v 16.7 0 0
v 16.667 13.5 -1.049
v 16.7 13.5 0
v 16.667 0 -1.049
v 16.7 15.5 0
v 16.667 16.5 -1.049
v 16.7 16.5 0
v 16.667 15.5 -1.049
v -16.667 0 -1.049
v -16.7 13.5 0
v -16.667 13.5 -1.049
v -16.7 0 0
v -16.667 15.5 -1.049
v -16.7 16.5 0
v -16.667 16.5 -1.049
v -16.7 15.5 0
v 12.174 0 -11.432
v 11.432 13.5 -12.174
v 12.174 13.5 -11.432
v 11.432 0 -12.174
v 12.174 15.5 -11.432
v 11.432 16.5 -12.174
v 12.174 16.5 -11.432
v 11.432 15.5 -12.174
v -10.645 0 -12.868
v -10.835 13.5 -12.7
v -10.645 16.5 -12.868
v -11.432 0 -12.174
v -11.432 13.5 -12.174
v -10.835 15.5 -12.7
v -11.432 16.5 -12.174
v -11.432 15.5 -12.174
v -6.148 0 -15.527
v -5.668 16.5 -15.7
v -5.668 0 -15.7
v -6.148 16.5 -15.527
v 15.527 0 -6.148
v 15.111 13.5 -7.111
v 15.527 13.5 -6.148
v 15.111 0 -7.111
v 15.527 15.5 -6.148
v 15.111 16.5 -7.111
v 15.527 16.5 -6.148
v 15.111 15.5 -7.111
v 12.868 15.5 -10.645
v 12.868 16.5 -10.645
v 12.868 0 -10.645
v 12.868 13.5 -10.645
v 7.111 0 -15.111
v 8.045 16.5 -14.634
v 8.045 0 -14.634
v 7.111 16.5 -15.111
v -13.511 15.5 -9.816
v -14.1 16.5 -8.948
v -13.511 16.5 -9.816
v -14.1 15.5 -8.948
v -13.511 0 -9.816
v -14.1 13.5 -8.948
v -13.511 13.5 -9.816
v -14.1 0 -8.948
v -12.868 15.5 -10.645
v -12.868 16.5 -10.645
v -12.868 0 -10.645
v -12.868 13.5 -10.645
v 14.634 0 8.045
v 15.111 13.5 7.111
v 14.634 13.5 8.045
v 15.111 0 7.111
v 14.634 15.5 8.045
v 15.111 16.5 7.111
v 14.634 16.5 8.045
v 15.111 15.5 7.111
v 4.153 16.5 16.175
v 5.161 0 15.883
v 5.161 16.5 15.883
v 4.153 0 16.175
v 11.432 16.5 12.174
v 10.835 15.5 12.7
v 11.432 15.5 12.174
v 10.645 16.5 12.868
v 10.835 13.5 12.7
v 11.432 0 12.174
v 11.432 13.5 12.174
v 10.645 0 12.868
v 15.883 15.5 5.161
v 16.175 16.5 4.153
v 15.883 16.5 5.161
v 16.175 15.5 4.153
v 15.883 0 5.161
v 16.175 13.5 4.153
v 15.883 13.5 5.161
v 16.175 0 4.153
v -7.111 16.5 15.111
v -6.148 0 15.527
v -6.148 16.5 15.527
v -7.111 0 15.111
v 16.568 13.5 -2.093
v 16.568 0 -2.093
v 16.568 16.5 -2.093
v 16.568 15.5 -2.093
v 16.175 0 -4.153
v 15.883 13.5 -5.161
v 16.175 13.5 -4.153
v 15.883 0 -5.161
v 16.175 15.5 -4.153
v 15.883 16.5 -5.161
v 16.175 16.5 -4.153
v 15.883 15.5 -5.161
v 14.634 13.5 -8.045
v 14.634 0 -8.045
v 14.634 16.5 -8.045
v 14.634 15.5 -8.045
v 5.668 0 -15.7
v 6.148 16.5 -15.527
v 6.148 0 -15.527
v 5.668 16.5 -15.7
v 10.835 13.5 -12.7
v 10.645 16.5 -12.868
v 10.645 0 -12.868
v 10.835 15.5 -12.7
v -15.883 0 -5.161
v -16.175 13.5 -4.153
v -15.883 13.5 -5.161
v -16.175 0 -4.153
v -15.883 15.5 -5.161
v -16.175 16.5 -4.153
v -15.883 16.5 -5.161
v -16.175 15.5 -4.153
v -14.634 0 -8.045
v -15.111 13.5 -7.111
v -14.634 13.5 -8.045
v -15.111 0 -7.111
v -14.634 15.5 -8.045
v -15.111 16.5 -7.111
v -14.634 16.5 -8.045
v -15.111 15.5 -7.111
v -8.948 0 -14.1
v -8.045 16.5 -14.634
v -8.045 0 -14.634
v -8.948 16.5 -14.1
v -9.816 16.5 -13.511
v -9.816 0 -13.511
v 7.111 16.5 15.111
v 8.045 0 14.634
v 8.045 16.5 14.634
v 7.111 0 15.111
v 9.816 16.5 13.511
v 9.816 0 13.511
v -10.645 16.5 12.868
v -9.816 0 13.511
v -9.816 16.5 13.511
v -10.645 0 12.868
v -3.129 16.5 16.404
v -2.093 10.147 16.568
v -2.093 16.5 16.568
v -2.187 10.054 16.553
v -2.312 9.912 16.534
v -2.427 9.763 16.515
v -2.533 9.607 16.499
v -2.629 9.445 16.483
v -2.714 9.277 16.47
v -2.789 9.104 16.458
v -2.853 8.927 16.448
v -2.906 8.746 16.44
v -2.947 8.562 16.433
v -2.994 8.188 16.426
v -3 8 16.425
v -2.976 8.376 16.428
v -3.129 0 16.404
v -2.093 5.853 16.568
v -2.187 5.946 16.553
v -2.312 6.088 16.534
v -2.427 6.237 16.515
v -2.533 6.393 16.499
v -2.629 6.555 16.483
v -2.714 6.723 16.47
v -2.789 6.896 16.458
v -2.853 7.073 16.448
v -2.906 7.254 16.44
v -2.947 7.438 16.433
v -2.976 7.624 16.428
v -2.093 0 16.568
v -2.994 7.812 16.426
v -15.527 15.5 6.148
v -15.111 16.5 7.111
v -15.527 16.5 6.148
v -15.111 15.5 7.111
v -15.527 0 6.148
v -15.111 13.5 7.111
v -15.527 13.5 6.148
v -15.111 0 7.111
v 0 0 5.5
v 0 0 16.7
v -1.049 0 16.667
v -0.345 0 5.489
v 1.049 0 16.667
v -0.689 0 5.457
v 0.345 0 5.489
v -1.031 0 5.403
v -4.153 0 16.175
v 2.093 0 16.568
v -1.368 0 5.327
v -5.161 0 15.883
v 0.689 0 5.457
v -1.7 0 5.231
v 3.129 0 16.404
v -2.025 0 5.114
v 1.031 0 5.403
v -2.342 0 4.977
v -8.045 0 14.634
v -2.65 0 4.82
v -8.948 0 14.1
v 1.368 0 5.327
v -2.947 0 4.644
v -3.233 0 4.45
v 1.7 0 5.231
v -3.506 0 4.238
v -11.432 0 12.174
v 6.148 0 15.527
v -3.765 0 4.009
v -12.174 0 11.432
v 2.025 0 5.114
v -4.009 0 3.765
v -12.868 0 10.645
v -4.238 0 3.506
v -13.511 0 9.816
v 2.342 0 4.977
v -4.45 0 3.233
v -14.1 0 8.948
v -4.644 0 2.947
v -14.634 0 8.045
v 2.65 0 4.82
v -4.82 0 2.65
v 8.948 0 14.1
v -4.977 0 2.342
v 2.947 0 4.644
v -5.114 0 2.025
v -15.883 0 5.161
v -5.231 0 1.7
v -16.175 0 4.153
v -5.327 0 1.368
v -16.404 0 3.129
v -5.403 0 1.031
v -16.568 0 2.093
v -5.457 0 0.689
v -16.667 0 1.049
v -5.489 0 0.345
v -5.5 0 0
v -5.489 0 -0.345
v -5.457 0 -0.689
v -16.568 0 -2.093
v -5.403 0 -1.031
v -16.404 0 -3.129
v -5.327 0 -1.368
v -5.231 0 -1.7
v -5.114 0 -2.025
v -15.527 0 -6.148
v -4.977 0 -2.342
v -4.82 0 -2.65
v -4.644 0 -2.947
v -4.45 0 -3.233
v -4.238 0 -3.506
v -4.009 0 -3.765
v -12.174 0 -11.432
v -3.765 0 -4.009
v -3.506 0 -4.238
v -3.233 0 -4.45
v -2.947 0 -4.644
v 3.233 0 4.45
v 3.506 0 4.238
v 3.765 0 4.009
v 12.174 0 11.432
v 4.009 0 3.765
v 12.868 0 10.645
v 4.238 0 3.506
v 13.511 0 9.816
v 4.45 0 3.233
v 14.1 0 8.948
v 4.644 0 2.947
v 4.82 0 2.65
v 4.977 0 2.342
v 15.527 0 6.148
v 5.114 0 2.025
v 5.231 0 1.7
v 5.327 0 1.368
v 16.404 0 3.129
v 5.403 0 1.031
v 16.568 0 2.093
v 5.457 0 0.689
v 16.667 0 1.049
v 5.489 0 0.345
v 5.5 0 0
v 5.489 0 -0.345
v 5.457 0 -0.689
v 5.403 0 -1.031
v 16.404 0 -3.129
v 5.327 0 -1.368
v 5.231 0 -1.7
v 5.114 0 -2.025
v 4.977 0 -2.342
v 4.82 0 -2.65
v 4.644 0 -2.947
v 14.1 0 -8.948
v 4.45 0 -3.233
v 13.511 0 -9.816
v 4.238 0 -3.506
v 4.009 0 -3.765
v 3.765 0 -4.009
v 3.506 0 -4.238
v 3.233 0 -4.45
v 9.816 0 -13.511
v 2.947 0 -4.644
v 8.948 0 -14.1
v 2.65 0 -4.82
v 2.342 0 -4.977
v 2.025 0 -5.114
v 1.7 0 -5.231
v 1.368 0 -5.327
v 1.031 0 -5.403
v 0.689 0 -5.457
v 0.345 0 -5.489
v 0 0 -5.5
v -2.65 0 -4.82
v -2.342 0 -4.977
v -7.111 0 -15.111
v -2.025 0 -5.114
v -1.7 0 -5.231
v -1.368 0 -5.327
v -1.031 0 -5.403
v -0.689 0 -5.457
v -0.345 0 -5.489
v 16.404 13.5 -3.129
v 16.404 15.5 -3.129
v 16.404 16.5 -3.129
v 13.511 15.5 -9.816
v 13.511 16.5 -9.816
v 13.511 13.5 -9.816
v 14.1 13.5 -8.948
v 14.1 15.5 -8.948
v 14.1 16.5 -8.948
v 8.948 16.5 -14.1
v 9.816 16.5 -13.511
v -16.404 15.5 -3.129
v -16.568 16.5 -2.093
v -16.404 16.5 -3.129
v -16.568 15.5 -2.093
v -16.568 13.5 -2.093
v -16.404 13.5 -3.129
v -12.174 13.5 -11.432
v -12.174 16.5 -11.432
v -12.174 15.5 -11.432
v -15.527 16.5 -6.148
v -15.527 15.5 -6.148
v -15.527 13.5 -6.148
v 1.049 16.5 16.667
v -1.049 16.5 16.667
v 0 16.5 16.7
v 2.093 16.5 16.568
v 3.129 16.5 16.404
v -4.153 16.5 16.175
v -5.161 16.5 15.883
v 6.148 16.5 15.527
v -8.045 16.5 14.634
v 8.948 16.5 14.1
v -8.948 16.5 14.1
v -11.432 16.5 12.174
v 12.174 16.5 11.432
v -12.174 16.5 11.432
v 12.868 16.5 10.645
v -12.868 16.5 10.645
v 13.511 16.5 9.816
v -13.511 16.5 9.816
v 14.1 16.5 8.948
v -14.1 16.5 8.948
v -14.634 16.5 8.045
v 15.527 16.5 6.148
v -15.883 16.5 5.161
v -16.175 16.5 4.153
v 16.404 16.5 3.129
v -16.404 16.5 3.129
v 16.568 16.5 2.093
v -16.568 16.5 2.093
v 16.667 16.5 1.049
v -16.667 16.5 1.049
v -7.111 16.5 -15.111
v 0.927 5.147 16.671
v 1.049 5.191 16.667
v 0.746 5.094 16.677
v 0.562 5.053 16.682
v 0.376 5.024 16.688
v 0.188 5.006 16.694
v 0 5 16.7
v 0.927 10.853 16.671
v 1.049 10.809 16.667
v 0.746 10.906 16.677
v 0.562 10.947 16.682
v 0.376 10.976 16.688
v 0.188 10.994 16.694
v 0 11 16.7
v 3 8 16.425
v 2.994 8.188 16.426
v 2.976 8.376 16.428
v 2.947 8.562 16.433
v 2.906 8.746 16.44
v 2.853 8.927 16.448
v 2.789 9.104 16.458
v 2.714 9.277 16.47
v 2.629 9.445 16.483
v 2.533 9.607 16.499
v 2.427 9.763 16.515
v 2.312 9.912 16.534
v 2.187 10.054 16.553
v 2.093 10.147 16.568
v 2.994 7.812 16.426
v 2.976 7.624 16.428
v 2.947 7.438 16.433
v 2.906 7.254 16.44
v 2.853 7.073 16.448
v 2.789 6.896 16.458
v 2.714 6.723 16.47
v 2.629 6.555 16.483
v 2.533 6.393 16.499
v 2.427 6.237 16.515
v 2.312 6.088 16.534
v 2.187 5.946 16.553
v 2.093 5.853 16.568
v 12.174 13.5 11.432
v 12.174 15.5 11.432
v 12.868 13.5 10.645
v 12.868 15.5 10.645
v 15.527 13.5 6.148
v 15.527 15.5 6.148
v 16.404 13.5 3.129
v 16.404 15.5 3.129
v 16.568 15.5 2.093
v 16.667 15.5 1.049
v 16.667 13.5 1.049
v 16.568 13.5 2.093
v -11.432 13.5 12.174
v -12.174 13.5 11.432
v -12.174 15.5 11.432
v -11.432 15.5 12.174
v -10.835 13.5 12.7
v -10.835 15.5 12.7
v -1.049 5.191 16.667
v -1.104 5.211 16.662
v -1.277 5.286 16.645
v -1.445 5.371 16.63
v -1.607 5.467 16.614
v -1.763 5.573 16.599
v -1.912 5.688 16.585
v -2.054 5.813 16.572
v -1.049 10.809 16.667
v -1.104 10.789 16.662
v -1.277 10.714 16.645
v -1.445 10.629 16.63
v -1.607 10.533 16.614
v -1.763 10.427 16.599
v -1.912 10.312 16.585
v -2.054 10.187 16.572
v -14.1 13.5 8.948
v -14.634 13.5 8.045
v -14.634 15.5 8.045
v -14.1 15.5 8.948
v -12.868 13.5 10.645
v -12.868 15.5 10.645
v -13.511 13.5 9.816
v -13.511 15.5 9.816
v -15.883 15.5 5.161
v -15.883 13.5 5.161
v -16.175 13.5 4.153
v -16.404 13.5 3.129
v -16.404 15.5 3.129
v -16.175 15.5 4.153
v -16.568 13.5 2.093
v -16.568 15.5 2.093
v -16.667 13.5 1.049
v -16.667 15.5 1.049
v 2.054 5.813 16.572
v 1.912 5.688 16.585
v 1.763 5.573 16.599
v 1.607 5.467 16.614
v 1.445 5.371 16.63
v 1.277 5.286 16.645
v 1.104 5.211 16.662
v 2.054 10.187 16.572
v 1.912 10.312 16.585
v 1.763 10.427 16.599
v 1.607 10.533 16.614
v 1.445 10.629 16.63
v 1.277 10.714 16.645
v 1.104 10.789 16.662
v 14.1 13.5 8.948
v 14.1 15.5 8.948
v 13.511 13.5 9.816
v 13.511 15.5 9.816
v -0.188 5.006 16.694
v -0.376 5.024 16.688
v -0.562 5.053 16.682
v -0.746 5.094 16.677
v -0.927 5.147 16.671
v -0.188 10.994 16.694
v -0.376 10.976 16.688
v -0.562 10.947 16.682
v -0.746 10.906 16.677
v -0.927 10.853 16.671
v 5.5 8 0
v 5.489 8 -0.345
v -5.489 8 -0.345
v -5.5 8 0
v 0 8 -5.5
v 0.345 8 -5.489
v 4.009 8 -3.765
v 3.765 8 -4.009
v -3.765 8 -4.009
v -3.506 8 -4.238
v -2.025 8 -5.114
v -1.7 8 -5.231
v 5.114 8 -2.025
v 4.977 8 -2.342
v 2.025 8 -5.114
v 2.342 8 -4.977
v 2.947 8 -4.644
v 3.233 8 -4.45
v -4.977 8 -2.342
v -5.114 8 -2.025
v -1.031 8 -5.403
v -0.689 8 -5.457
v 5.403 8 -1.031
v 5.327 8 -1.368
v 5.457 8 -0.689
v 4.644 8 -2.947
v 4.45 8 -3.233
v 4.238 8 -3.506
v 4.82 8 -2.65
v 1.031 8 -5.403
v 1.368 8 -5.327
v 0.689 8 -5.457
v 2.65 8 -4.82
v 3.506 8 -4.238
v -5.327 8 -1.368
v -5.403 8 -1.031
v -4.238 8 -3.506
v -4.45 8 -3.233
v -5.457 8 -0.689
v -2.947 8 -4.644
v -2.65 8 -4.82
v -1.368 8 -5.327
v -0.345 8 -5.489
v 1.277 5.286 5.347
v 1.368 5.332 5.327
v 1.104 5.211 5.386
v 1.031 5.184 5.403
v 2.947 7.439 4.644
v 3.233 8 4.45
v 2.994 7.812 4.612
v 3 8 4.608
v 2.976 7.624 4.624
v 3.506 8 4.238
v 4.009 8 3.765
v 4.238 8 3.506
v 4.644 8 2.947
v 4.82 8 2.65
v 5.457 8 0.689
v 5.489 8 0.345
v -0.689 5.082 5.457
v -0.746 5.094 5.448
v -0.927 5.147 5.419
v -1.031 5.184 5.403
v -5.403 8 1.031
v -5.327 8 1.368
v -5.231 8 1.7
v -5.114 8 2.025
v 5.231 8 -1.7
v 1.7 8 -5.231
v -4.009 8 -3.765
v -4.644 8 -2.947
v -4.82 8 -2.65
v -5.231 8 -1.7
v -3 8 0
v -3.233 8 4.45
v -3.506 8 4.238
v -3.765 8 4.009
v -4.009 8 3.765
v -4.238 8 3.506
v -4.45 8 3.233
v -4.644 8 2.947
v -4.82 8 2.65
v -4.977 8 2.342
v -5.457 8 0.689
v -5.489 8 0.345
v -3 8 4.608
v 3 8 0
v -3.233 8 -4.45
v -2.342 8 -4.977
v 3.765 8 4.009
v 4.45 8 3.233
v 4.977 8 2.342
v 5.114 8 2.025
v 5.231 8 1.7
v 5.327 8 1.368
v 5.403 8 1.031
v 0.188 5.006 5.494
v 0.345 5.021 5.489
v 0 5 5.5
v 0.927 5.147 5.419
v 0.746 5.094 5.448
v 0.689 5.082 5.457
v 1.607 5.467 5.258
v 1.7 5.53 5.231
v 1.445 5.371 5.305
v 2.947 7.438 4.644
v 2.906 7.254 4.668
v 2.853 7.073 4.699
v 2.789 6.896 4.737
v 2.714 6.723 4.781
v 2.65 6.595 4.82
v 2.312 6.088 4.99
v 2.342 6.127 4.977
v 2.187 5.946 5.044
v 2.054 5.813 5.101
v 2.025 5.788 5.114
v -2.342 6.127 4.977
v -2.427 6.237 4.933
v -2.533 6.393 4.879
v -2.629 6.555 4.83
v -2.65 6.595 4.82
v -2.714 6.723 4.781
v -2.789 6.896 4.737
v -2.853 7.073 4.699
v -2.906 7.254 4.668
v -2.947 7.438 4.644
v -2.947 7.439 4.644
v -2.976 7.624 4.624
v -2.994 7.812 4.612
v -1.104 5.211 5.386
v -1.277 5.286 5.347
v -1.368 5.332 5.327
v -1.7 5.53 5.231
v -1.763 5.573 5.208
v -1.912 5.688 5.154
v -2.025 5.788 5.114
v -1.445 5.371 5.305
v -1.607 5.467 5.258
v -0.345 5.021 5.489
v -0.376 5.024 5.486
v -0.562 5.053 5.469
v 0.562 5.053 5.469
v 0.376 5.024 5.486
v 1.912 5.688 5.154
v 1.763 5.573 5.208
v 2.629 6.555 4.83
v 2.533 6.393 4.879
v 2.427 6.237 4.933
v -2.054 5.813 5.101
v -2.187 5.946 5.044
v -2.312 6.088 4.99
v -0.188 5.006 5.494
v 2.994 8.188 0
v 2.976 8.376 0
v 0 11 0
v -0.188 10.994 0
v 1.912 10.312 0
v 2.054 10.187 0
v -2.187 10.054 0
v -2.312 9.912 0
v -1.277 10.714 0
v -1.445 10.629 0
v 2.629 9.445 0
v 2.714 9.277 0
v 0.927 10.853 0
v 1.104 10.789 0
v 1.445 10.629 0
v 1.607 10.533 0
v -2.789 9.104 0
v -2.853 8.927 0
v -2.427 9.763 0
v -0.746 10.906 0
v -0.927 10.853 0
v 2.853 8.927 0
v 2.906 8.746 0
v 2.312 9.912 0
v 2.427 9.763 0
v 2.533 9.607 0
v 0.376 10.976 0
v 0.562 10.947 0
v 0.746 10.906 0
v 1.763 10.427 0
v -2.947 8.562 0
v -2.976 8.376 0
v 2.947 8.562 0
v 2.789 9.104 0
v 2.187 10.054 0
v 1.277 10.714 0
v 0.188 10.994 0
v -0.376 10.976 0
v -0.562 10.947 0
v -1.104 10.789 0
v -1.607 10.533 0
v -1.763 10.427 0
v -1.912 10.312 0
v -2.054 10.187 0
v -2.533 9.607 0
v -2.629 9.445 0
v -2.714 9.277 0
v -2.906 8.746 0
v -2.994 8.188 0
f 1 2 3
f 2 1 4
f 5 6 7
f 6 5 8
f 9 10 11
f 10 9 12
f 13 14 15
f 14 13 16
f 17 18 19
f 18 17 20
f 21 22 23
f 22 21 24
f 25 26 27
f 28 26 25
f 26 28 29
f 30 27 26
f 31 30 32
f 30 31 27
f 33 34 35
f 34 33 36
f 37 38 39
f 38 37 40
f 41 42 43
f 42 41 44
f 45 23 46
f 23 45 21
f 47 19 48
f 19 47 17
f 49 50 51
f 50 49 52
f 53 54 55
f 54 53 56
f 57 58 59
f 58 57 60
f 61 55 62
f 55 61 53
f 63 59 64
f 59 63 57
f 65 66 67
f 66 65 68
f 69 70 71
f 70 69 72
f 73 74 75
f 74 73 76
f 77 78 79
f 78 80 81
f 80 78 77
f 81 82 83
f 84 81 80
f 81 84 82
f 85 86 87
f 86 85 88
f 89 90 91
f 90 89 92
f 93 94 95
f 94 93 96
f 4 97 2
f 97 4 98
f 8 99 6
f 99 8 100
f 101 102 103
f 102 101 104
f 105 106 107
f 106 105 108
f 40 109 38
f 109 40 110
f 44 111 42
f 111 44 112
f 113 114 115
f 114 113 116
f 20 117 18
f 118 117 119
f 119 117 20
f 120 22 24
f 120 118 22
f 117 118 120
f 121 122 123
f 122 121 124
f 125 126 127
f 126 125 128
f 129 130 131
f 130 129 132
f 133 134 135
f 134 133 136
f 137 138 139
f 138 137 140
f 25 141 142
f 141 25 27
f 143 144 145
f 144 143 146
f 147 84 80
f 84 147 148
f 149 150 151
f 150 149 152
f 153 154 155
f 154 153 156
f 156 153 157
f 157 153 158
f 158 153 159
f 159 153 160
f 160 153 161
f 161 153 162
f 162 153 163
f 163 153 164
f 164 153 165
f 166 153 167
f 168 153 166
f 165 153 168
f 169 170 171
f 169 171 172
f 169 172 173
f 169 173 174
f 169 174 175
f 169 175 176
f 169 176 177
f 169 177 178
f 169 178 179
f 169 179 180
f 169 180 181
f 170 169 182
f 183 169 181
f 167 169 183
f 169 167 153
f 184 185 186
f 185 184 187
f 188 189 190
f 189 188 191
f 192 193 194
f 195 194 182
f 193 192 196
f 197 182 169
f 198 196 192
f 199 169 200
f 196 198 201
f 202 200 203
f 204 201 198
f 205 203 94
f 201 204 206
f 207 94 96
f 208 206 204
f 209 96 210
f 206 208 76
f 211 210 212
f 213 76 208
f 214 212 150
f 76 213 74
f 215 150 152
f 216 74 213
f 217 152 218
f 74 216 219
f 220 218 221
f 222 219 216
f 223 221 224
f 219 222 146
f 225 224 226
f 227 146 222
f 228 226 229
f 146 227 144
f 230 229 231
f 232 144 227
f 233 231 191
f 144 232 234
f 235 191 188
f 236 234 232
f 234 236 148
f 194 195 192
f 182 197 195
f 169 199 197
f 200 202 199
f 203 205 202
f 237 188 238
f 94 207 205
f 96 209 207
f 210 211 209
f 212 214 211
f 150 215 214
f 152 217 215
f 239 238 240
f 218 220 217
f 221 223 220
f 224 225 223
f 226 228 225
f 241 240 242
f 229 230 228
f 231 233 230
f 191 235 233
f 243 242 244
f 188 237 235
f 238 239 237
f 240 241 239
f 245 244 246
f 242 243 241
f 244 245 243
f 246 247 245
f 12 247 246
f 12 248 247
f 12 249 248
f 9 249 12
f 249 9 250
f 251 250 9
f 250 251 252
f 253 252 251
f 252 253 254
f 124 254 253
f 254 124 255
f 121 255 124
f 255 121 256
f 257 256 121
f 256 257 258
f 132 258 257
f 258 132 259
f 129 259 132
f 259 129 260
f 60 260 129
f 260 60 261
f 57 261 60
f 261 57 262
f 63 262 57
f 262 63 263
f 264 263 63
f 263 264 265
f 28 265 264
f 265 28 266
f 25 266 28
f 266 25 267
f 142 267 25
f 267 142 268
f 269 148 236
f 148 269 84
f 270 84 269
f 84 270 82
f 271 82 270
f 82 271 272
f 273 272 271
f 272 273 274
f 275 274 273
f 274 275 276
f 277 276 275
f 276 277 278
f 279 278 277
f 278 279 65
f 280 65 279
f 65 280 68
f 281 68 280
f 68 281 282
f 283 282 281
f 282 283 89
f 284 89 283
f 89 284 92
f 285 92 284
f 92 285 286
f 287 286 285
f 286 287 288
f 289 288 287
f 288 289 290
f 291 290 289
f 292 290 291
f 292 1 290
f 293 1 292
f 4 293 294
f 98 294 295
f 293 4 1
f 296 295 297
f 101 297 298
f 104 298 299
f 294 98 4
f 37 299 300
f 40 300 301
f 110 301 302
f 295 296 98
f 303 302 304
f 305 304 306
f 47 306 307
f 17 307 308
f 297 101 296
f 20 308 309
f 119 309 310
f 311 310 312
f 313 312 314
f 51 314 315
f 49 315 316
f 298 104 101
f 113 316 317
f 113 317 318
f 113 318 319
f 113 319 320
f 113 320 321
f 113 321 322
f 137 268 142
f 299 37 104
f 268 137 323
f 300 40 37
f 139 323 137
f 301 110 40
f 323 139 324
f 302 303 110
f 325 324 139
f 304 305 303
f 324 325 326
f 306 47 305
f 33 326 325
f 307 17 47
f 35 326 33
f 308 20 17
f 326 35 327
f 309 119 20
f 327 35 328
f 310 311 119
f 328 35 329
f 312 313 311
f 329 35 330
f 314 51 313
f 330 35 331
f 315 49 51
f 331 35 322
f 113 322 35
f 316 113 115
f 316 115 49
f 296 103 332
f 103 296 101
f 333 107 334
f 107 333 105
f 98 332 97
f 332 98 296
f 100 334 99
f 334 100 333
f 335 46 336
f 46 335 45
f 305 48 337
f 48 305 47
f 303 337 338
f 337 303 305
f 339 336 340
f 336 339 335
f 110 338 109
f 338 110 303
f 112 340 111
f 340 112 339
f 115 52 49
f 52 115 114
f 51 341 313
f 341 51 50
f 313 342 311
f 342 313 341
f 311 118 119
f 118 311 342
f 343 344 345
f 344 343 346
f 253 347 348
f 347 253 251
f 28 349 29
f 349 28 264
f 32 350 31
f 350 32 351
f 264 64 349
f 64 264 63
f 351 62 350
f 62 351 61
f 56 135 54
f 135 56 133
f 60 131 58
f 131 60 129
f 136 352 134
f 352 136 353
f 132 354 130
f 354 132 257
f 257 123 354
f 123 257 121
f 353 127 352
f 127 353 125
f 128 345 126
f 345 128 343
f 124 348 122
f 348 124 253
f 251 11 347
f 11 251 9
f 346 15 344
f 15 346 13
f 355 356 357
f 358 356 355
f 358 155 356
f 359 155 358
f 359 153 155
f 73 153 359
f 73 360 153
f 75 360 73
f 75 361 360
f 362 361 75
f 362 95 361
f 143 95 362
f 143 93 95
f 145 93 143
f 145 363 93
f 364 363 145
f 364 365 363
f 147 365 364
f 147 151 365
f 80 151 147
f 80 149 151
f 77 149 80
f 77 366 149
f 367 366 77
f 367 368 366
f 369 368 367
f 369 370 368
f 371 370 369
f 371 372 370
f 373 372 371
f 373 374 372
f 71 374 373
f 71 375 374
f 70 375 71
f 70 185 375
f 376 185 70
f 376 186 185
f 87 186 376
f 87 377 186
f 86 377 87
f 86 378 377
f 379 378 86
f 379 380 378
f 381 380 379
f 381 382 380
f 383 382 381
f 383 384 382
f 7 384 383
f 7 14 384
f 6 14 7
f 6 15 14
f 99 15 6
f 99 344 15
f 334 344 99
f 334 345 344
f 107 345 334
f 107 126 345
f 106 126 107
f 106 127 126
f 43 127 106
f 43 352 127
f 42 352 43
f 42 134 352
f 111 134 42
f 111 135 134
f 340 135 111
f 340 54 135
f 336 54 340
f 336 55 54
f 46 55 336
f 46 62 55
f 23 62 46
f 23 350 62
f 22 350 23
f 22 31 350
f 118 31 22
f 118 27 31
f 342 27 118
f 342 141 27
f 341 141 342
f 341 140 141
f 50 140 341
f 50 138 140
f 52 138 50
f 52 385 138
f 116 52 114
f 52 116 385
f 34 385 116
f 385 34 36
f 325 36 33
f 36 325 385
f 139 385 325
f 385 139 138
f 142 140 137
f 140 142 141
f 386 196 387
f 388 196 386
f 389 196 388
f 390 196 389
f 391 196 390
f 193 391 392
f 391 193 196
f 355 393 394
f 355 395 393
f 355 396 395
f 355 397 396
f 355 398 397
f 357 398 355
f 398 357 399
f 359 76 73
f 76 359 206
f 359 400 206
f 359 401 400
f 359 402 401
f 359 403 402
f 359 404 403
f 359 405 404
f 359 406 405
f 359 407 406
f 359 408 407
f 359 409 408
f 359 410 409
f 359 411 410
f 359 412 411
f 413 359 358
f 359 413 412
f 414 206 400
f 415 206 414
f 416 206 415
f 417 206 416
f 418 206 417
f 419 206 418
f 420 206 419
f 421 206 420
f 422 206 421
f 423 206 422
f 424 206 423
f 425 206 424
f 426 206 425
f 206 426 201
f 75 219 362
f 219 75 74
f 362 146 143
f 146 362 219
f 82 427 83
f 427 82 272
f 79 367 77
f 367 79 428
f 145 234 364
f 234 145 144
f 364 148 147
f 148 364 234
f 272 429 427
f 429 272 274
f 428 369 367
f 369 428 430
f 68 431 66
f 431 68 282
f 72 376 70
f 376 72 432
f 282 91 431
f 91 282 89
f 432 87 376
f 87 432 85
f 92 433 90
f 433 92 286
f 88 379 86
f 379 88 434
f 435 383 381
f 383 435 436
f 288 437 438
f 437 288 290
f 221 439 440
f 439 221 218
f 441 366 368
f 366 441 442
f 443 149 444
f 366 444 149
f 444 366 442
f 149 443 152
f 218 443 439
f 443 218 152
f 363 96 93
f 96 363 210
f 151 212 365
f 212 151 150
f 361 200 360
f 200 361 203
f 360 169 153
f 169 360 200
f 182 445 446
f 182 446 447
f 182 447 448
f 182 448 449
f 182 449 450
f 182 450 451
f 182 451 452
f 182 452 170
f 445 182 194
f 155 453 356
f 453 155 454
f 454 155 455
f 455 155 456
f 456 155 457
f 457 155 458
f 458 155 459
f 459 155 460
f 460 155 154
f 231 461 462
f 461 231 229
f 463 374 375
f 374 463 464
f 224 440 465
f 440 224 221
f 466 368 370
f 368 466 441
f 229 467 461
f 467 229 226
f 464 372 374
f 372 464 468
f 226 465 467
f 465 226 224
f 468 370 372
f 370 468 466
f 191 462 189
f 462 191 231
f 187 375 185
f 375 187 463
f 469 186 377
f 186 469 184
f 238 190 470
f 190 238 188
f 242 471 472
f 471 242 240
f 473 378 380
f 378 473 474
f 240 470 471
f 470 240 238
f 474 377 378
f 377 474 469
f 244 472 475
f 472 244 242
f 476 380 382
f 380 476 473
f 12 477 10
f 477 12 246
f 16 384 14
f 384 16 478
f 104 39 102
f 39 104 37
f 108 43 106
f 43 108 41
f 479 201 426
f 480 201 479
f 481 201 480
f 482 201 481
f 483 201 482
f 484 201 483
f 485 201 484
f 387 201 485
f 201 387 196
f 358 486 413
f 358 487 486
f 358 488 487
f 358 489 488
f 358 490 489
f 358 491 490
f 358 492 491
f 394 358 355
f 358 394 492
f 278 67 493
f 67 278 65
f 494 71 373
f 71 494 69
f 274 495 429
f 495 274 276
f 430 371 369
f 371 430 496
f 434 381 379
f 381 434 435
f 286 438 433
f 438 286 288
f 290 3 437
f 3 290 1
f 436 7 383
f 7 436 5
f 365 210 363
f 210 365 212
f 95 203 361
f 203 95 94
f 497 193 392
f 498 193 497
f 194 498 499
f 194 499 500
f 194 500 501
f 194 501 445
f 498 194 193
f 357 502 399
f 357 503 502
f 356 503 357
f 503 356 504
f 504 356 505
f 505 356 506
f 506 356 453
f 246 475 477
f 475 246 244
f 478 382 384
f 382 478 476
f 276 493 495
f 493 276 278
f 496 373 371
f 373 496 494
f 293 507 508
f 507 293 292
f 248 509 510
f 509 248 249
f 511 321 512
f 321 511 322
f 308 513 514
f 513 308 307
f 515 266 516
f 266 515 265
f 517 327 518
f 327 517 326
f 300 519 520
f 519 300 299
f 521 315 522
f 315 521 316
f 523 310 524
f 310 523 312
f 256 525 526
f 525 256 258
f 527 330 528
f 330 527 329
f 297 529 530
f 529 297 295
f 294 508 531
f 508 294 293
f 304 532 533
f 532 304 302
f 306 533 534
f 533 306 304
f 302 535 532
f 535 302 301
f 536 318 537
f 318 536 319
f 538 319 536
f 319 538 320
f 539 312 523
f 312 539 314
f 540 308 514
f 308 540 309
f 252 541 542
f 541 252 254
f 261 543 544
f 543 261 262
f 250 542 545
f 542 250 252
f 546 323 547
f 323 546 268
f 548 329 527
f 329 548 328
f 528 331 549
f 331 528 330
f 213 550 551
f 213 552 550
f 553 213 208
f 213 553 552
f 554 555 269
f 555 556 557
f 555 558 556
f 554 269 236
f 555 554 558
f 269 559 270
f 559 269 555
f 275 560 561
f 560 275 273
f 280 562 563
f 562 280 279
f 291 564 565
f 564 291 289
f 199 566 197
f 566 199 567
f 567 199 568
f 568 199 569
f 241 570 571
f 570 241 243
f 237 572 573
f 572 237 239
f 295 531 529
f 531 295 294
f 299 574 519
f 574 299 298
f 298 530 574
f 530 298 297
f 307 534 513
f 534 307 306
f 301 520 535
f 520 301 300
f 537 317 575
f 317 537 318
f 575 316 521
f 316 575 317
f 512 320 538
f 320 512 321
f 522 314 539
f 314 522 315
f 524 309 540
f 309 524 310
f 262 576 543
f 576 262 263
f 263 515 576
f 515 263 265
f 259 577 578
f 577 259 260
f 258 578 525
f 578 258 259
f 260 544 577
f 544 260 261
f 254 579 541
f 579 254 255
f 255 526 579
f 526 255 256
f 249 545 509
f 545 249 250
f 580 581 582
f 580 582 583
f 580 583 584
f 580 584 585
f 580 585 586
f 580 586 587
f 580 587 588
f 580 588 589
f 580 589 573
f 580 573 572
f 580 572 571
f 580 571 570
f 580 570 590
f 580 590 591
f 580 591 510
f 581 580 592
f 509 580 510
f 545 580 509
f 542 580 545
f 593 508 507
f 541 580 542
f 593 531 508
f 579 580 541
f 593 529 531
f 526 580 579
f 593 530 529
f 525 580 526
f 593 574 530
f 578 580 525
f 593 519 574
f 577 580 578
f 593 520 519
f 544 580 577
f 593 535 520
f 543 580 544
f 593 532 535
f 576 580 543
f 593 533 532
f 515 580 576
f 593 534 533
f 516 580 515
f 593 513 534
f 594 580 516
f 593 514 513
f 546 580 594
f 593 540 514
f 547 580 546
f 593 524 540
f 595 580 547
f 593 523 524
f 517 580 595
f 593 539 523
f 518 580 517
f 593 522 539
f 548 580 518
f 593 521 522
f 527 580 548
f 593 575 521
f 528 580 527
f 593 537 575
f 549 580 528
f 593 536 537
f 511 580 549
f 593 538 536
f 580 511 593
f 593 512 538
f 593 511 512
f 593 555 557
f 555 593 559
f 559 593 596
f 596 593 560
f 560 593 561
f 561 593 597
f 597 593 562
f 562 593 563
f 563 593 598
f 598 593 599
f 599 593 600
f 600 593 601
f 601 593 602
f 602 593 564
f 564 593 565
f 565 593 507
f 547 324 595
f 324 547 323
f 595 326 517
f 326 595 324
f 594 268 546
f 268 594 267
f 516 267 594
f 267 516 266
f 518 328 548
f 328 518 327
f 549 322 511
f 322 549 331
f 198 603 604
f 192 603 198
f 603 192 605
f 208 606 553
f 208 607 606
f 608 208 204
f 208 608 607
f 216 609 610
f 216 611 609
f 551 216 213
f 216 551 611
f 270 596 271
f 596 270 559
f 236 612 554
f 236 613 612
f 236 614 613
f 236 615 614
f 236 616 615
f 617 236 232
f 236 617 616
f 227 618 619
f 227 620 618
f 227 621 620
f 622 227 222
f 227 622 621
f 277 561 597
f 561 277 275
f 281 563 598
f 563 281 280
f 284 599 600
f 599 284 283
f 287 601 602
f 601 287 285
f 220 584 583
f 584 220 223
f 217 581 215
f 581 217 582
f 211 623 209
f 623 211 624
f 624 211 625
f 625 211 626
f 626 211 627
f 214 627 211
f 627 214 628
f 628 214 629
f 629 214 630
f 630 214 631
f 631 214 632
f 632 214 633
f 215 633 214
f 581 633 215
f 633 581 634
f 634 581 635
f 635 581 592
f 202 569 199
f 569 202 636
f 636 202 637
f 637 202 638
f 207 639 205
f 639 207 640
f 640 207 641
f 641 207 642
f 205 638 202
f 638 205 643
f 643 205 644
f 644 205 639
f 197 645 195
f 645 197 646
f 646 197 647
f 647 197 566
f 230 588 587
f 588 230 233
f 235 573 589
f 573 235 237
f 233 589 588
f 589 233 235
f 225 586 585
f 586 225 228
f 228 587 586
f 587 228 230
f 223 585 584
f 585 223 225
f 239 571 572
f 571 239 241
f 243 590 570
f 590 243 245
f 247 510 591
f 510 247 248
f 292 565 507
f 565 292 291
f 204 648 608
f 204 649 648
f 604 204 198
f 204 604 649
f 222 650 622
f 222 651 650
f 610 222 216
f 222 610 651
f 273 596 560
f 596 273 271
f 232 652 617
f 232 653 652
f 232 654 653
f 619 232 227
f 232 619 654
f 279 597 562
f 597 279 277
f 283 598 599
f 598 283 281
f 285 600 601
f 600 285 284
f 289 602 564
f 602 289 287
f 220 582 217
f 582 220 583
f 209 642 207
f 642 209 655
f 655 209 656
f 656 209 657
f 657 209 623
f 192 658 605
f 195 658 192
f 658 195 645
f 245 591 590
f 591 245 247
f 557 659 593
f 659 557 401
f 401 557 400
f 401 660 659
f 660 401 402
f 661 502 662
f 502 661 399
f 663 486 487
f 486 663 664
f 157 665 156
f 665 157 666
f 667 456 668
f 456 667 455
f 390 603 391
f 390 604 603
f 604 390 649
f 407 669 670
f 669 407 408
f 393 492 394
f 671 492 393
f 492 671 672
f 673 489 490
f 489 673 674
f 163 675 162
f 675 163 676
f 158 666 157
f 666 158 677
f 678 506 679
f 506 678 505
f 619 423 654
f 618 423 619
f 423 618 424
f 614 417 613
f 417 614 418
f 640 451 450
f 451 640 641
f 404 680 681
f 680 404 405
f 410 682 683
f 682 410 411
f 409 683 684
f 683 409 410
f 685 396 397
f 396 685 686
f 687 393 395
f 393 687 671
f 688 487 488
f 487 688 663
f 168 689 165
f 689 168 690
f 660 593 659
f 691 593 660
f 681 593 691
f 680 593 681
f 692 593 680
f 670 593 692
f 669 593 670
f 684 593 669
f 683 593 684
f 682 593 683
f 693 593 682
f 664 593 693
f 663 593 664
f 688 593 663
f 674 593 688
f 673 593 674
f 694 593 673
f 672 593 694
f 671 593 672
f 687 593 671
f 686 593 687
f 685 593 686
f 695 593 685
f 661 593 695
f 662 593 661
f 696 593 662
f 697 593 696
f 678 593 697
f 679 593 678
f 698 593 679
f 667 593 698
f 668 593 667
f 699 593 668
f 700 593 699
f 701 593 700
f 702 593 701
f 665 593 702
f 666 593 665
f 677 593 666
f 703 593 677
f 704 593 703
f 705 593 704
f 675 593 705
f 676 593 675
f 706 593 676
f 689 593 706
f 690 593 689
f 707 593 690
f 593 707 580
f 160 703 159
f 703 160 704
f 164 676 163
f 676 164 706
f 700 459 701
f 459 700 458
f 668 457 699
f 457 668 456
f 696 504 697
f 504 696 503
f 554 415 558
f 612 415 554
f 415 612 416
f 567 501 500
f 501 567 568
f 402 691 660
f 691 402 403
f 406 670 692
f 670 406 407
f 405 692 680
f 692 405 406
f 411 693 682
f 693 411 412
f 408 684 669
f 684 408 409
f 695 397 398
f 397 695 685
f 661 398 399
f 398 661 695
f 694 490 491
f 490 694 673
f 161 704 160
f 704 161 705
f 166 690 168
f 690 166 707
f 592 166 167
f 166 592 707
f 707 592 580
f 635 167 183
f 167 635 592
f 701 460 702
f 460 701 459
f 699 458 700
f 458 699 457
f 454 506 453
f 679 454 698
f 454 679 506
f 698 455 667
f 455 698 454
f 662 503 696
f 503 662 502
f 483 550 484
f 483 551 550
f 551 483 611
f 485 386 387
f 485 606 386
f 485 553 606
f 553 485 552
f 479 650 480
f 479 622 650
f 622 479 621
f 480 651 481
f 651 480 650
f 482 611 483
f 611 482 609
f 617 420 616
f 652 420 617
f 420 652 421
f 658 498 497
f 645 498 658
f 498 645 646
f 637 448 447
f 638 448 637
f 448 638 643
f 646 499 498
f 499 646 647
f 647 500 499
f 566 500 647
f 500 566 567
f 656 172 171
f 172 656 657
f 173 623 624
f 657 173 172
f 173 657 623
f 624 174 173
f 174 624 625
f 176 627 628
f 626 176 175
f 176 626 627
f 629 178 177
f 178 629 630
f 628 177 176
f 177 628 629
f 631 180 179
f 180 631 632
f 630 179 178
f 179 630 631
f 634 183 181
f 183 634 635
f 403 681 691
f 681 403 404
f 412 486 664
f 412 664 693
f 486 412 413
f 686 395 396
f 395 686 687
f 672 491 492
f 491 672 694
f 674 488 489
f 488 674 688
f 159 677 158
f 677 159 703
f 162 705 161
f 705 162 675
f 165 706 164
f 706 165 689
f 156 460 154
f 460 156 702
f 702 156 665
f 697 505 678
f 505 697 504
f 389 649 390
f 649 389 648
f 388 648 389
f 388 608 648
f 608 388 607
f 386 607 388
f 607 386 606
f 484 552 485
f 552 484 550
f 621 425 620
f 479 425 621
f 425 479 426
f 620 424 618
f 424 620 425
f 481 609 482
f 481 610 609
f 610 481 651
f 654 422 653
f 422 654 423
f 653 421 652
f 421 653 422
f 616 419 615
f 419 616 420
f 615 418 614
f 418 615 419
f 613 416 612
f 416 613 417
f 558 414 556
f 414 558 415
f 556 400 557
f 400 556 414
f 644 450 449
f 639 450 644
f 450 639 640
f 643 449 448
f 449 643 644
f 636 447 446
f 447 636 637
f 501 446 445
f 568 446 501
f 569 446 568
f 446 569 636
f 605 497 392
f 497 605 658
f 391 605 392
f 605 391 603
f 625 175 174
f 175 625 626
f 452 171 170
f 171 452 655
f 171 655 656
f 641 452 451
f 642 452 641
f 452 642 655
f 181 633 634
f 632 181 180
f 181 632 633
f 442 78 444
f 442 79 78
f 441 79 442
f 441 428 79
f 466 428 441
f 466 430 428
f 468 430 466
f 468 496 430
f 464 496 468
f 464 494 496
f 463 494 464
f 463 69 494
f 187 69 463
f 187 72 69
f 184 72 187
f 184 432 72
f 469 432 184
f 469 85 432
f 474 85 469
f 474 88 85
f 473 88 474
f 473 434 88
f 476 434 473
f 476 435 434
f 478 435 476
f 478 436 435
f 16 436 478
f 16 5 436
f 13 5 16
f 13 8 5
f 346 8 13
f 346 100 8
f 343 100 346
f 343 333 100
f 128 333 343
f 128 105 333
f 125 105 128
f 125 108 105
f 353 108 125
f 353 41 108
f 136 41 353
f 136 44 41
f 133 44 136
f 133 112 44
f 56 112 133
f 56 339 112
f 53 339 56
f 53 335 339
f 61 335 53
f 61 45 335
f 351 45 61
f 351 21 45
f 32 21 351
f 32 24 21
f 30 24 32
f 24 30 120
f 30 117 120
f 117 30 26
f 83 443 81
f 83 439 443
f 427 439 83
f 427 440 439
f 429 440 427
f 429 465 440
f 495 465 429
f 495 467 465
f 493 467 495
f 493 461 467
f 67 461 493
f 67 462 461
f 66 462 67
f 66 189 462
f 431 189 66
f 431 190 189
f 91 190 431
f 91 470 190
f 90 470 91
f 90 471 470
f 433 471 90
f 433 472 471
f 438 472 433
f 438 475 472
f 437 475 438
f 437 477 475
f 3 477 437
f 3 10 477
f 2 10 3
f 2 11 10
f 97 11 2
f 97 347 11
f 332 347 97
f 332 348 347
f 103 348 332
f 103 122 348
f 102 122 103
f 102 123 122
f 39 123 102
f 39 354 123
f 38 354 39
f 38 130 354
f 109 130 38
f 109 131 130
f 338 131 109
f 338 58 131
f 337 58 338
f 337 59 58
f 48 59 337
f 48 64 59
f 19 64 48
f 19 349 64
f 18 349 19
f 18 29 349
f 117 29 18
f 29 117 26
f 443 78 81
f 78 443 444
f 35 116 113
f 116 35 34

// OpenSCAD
// Module electrodes flexibles
// Mesures en millimètres

// Dimensions
diamBoule = 11; // Diamètre de la boule de stainless et/ou du terminal (prendre le plus gros des deux pour que ça rentre bien)
profondeurTrou = 8; // Profondeur du trou où la boule et le terminal sont insérés

largeurTrouVelcro = 25.4; // Largeur de la fente dans laquelle le velcro passe
hauteurTrouVelcro = 2; // Hauteur de la fente dans laquelle le velcro passe

diamModule = largeurTrouVelcro+8; // Diamètre global du module
epaisseurModule = diamBoule*1.5; // Épaisseur du module (excluant la partie de la boule qui sort)

// Nombres de "faces" sur les cercles (+ élevé = + long à faire le rendu)
$fn = 100;


// ********
// Logique de modelisation
// Cylindre du module global - cylindre diamBoule - cylindre sortie terminal - prisme fente velcro - petit plat pour faciliter l'impression

rotate([-90,0,0])
difference(){
// Module principal
cylinder(d=diamModule, h=epaisseurModule);

// Trou boule
cylinder(d=diamBoule, h=profondeurTrou);
    
// Trou pour passer le terminal et le fil
translate([0,0,profondeurTrou]) rotate([90, 0, 0]) cylinder(r=3, h=100);
    
// Fente pour velcro
translate([0,0,epaisseurModule-hauteurTrouVelcro]) cube([1000, largeurTrouVelcro, hauteurTrouVelcro], center=true);
    
// Face plate pour faciliter l'impression
translate([0, 50+diamModule/2-1, 0]) cube([100, 100, 100], center=true);

}
